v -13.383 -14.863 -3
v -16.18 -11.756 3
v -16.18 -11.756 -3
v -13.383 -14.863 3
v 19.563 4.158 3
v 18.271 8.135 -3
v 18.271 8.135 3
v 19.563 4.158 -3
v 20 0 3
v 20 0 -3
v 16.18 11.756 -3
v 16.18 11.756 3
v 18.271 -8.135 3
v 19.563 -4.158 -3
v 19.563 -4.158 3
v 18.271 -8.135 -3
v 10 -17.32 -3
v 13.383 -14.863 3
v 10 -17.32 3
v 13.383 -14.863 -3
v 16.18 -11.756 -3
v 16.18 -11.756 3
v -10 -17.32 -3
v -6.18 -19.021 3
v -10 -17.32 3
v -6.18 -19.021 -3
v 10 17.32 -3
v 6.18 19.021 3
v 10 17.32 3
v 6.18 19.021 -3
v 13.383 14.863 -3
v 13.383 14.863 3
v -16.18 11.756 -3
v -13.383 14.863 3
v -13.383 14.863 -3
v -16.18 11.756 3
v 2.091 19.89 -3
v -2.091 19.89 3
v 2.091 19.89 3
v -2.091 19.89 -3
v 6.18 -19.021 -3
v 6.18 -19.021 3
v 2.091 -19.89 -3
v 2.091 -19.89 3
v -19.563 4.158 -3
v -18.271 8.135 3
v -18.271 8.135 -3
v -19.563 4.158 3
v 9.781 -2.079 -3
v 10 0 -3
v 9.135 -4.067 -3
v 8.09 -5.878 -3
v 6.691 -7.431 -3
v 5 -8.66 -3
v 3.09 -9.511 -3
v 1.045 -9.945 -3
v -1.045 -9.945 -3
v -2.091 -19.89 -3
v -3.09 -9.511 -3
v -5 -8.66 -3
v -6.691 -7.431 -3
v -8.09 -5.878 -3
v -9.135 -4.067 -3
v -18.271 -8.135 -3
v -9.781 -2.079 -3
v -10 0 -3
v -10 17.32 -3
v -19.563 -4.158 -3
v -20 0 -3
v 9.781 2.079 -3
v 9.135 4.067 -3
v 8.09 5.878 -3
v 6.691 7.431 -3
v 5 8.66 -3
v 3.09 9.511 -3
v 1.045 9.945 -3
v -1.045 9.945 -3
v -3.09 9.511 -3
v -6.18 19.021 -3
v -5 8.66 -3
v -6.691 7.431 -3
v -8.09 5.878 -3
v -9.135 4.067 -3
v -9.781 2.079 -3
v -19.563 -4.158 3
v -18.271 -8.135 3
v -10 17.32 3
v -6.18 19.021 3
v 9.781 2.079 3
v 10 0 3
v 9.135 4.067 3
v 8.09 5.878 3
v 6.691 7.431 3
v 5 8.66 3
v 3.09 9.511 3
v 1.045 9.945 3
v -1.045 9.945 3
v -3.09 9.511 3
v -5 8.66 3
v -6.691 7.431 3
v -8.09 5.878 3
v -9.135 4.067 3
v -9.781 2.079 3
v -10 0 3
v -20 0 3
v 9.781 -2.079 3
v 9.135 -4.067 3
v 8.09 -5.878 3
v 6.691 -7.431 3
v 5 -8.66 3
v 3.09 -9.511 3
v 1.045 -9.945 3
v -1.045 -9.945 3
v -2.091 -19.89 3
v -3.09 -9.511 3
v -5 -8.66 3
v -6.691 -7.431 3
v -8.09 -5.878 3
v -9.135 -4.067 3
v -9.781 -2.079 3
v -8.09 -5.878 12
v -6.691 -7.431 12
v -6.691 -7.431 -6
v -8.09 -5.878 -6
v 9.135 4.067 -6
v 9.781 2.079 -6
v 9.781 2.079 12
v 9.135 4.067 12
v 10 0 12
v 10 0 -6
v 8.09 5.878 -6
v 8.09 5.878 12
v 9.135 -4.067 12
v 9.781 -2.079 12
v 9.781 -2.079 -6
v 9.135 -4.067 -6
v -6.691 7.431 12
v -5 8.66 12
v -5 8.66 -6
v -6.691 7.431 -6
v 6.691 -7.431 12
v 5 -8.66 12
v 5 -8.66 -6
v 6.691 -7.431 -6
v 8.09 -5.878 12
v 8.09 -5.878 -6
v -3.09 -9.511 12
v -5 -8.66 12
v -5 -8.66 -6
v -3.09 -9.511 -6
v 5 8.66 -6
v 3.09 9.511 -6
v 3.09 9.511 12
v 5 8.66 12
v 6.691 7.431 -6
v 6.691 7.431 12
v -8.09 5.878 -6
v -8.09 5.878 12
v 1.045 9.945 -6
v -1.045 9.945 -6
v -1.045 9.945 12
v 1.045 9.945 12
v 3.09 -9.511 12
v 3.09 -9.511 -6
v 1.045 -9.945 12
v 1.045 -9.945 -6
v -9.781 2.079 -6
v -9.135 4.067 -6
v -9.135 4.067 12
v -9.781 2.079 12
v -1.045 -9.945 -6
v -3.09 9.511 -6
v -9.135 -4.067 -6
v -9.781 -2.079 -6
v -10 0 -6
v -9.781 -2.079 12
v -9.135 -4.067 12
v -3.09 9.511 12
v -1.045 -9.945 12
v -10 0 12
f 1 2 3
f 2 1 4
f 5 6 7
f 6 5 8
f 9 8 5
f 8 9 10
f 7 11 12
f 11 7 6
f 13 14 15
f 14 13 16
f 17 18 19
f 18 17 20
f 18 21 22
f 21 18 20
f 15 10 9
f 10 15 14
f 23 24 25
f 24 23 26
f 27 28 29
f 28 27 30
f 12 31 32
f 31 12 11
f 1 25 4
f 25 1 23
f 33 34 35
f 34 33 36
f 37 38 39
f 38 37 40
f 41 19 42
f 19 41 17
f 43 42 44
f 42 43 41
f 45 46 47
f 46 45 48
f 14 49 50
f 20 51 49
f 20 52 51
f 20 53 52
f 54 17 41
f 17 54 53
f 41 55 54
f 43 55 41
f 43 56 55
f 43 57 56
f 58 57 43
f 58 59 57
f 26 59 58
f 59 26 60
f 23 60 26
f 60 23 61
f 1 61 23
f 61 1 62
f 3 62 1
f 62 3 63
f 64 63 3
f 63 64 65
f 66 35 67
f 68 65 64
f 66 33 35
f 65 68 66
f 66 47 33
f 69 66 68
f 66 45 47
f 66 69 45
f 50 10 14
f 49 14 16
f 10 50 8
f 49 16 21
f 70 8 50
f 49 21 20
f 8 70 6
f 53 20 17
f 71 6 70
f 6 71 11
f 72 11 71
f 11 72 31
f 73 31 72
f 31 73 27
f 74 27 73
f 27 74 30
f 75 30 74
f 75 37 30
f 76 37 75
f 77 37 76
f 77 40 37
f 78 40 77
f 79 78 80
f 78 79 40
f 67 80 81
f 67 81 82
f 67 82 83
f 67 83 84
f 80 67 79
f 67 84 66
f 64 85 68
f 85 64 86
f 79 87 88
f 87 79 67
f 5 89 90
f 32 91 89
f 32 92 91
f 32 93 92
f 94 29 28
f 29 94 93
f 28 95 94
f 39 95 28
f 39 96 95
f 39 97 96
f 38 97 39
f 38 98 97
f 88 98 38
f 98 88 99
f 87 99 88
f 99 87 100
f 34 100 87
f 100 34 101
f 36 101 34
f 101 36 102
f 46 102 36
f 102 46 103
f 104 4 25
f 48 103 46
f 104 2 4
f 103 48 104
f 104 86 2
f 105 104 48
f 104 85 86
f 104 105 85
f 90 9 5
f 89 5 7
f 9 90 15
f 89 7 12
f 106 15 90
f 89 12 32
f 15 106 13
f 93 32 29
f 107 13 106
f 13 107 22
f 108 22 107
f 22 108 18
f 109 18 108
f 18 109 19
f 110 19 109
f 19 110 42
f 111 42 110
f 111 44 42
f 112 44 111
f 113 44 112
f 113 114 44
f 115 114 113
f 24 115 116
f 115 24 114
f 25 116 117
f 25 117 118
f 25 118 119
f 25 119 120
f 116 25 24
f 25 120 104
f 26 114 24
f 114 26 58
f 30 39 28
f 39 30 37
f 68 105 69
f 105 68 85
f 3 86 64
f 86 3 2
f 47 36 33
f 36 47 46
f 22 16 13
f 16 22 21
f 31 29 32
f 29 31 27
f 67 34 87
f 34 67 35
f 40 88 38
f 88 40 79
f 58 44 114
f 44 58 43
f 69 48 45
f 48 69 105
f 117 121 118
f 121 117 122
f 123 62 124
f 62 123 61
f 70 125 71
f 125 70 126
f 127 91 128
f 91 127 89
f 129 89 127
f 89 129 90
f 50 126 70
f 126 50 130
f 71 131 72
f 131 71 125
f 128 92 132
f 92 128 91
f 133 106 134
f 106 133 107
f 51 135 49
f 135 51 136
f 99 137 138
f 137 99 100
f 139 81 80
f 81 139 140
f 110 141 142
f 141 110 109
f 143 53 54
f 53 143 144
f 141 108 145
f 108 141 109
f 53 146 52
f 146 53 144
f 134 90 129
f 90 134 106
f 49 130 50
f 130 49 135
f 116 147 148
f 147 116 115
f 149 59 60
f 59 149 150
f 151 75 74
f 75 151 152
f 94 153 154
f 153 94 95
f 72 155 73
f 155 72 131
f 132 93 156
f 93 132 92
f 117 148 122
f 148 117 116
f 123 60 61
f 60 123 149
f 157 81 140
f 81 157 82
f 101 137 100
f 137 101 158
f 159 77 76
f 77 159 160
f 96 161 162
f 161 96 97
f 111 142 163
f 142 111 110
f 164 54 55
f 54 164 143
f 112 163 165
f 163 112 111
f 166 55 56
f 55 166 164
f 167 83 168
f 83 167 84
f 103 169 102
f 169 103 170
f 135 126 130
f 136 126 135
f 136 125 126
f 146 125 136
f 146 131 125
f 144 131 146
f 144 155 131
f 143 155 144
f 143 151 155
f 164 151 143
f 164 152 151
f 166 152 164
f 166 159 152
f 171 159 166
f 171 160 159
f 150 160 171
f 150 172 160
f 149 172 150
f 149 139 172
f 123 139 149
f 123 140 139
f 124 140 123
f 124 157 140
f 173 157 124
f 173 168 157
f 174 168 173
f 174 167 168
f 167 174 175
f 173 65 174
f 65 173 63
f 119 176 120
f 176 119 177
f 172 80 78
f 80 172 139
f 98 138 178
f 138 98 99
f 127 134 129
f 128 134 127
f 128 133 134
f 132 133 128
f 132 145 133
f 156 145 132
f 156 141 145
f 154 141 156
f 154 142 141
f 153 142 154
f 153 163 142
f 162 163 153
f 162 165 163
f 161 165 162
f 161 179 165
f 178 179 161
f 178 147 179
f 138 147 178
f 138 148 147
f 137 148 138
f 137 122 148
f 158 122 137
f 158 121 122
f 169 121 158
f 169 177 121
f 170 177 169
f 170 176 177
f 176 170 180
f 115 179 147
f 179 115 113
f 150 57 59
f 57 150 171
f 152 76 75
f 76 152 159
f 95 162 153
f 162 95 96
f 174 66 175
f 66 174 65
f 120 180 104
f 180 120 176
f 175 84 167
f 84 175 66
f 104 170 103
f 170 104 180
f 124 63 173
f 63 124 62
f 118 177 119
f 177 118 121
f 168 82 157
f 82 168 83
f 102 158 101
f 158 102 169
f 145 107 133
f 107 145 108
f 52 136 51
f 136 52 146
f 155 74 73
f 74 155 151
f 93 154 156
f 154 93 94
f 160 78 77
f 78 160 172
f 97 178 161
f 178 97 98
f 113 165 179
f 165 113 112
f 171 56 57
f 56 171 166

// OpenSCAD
// Parameters for the central_hub
base_diameter = 40; // Diameter of the flat base
base_height = 6;    // Adjusted height of the flat base to make it thinner
raised_diameter = 20; // Diameter of the raised central section
raised_height = 18;   // Adjusted height of the raised central section to make it taller

// Central hub model
module central_hub() {
    // Base cylinder
    cylinder(h = base_height, d = base_diameter, center = true);
    
    // Raised central section
    translate([0, 0, base_height / 2])
        cylinder(h = raised_height, d = raised_diameter, center = true);
}

// Render the central hub
central_hub();
